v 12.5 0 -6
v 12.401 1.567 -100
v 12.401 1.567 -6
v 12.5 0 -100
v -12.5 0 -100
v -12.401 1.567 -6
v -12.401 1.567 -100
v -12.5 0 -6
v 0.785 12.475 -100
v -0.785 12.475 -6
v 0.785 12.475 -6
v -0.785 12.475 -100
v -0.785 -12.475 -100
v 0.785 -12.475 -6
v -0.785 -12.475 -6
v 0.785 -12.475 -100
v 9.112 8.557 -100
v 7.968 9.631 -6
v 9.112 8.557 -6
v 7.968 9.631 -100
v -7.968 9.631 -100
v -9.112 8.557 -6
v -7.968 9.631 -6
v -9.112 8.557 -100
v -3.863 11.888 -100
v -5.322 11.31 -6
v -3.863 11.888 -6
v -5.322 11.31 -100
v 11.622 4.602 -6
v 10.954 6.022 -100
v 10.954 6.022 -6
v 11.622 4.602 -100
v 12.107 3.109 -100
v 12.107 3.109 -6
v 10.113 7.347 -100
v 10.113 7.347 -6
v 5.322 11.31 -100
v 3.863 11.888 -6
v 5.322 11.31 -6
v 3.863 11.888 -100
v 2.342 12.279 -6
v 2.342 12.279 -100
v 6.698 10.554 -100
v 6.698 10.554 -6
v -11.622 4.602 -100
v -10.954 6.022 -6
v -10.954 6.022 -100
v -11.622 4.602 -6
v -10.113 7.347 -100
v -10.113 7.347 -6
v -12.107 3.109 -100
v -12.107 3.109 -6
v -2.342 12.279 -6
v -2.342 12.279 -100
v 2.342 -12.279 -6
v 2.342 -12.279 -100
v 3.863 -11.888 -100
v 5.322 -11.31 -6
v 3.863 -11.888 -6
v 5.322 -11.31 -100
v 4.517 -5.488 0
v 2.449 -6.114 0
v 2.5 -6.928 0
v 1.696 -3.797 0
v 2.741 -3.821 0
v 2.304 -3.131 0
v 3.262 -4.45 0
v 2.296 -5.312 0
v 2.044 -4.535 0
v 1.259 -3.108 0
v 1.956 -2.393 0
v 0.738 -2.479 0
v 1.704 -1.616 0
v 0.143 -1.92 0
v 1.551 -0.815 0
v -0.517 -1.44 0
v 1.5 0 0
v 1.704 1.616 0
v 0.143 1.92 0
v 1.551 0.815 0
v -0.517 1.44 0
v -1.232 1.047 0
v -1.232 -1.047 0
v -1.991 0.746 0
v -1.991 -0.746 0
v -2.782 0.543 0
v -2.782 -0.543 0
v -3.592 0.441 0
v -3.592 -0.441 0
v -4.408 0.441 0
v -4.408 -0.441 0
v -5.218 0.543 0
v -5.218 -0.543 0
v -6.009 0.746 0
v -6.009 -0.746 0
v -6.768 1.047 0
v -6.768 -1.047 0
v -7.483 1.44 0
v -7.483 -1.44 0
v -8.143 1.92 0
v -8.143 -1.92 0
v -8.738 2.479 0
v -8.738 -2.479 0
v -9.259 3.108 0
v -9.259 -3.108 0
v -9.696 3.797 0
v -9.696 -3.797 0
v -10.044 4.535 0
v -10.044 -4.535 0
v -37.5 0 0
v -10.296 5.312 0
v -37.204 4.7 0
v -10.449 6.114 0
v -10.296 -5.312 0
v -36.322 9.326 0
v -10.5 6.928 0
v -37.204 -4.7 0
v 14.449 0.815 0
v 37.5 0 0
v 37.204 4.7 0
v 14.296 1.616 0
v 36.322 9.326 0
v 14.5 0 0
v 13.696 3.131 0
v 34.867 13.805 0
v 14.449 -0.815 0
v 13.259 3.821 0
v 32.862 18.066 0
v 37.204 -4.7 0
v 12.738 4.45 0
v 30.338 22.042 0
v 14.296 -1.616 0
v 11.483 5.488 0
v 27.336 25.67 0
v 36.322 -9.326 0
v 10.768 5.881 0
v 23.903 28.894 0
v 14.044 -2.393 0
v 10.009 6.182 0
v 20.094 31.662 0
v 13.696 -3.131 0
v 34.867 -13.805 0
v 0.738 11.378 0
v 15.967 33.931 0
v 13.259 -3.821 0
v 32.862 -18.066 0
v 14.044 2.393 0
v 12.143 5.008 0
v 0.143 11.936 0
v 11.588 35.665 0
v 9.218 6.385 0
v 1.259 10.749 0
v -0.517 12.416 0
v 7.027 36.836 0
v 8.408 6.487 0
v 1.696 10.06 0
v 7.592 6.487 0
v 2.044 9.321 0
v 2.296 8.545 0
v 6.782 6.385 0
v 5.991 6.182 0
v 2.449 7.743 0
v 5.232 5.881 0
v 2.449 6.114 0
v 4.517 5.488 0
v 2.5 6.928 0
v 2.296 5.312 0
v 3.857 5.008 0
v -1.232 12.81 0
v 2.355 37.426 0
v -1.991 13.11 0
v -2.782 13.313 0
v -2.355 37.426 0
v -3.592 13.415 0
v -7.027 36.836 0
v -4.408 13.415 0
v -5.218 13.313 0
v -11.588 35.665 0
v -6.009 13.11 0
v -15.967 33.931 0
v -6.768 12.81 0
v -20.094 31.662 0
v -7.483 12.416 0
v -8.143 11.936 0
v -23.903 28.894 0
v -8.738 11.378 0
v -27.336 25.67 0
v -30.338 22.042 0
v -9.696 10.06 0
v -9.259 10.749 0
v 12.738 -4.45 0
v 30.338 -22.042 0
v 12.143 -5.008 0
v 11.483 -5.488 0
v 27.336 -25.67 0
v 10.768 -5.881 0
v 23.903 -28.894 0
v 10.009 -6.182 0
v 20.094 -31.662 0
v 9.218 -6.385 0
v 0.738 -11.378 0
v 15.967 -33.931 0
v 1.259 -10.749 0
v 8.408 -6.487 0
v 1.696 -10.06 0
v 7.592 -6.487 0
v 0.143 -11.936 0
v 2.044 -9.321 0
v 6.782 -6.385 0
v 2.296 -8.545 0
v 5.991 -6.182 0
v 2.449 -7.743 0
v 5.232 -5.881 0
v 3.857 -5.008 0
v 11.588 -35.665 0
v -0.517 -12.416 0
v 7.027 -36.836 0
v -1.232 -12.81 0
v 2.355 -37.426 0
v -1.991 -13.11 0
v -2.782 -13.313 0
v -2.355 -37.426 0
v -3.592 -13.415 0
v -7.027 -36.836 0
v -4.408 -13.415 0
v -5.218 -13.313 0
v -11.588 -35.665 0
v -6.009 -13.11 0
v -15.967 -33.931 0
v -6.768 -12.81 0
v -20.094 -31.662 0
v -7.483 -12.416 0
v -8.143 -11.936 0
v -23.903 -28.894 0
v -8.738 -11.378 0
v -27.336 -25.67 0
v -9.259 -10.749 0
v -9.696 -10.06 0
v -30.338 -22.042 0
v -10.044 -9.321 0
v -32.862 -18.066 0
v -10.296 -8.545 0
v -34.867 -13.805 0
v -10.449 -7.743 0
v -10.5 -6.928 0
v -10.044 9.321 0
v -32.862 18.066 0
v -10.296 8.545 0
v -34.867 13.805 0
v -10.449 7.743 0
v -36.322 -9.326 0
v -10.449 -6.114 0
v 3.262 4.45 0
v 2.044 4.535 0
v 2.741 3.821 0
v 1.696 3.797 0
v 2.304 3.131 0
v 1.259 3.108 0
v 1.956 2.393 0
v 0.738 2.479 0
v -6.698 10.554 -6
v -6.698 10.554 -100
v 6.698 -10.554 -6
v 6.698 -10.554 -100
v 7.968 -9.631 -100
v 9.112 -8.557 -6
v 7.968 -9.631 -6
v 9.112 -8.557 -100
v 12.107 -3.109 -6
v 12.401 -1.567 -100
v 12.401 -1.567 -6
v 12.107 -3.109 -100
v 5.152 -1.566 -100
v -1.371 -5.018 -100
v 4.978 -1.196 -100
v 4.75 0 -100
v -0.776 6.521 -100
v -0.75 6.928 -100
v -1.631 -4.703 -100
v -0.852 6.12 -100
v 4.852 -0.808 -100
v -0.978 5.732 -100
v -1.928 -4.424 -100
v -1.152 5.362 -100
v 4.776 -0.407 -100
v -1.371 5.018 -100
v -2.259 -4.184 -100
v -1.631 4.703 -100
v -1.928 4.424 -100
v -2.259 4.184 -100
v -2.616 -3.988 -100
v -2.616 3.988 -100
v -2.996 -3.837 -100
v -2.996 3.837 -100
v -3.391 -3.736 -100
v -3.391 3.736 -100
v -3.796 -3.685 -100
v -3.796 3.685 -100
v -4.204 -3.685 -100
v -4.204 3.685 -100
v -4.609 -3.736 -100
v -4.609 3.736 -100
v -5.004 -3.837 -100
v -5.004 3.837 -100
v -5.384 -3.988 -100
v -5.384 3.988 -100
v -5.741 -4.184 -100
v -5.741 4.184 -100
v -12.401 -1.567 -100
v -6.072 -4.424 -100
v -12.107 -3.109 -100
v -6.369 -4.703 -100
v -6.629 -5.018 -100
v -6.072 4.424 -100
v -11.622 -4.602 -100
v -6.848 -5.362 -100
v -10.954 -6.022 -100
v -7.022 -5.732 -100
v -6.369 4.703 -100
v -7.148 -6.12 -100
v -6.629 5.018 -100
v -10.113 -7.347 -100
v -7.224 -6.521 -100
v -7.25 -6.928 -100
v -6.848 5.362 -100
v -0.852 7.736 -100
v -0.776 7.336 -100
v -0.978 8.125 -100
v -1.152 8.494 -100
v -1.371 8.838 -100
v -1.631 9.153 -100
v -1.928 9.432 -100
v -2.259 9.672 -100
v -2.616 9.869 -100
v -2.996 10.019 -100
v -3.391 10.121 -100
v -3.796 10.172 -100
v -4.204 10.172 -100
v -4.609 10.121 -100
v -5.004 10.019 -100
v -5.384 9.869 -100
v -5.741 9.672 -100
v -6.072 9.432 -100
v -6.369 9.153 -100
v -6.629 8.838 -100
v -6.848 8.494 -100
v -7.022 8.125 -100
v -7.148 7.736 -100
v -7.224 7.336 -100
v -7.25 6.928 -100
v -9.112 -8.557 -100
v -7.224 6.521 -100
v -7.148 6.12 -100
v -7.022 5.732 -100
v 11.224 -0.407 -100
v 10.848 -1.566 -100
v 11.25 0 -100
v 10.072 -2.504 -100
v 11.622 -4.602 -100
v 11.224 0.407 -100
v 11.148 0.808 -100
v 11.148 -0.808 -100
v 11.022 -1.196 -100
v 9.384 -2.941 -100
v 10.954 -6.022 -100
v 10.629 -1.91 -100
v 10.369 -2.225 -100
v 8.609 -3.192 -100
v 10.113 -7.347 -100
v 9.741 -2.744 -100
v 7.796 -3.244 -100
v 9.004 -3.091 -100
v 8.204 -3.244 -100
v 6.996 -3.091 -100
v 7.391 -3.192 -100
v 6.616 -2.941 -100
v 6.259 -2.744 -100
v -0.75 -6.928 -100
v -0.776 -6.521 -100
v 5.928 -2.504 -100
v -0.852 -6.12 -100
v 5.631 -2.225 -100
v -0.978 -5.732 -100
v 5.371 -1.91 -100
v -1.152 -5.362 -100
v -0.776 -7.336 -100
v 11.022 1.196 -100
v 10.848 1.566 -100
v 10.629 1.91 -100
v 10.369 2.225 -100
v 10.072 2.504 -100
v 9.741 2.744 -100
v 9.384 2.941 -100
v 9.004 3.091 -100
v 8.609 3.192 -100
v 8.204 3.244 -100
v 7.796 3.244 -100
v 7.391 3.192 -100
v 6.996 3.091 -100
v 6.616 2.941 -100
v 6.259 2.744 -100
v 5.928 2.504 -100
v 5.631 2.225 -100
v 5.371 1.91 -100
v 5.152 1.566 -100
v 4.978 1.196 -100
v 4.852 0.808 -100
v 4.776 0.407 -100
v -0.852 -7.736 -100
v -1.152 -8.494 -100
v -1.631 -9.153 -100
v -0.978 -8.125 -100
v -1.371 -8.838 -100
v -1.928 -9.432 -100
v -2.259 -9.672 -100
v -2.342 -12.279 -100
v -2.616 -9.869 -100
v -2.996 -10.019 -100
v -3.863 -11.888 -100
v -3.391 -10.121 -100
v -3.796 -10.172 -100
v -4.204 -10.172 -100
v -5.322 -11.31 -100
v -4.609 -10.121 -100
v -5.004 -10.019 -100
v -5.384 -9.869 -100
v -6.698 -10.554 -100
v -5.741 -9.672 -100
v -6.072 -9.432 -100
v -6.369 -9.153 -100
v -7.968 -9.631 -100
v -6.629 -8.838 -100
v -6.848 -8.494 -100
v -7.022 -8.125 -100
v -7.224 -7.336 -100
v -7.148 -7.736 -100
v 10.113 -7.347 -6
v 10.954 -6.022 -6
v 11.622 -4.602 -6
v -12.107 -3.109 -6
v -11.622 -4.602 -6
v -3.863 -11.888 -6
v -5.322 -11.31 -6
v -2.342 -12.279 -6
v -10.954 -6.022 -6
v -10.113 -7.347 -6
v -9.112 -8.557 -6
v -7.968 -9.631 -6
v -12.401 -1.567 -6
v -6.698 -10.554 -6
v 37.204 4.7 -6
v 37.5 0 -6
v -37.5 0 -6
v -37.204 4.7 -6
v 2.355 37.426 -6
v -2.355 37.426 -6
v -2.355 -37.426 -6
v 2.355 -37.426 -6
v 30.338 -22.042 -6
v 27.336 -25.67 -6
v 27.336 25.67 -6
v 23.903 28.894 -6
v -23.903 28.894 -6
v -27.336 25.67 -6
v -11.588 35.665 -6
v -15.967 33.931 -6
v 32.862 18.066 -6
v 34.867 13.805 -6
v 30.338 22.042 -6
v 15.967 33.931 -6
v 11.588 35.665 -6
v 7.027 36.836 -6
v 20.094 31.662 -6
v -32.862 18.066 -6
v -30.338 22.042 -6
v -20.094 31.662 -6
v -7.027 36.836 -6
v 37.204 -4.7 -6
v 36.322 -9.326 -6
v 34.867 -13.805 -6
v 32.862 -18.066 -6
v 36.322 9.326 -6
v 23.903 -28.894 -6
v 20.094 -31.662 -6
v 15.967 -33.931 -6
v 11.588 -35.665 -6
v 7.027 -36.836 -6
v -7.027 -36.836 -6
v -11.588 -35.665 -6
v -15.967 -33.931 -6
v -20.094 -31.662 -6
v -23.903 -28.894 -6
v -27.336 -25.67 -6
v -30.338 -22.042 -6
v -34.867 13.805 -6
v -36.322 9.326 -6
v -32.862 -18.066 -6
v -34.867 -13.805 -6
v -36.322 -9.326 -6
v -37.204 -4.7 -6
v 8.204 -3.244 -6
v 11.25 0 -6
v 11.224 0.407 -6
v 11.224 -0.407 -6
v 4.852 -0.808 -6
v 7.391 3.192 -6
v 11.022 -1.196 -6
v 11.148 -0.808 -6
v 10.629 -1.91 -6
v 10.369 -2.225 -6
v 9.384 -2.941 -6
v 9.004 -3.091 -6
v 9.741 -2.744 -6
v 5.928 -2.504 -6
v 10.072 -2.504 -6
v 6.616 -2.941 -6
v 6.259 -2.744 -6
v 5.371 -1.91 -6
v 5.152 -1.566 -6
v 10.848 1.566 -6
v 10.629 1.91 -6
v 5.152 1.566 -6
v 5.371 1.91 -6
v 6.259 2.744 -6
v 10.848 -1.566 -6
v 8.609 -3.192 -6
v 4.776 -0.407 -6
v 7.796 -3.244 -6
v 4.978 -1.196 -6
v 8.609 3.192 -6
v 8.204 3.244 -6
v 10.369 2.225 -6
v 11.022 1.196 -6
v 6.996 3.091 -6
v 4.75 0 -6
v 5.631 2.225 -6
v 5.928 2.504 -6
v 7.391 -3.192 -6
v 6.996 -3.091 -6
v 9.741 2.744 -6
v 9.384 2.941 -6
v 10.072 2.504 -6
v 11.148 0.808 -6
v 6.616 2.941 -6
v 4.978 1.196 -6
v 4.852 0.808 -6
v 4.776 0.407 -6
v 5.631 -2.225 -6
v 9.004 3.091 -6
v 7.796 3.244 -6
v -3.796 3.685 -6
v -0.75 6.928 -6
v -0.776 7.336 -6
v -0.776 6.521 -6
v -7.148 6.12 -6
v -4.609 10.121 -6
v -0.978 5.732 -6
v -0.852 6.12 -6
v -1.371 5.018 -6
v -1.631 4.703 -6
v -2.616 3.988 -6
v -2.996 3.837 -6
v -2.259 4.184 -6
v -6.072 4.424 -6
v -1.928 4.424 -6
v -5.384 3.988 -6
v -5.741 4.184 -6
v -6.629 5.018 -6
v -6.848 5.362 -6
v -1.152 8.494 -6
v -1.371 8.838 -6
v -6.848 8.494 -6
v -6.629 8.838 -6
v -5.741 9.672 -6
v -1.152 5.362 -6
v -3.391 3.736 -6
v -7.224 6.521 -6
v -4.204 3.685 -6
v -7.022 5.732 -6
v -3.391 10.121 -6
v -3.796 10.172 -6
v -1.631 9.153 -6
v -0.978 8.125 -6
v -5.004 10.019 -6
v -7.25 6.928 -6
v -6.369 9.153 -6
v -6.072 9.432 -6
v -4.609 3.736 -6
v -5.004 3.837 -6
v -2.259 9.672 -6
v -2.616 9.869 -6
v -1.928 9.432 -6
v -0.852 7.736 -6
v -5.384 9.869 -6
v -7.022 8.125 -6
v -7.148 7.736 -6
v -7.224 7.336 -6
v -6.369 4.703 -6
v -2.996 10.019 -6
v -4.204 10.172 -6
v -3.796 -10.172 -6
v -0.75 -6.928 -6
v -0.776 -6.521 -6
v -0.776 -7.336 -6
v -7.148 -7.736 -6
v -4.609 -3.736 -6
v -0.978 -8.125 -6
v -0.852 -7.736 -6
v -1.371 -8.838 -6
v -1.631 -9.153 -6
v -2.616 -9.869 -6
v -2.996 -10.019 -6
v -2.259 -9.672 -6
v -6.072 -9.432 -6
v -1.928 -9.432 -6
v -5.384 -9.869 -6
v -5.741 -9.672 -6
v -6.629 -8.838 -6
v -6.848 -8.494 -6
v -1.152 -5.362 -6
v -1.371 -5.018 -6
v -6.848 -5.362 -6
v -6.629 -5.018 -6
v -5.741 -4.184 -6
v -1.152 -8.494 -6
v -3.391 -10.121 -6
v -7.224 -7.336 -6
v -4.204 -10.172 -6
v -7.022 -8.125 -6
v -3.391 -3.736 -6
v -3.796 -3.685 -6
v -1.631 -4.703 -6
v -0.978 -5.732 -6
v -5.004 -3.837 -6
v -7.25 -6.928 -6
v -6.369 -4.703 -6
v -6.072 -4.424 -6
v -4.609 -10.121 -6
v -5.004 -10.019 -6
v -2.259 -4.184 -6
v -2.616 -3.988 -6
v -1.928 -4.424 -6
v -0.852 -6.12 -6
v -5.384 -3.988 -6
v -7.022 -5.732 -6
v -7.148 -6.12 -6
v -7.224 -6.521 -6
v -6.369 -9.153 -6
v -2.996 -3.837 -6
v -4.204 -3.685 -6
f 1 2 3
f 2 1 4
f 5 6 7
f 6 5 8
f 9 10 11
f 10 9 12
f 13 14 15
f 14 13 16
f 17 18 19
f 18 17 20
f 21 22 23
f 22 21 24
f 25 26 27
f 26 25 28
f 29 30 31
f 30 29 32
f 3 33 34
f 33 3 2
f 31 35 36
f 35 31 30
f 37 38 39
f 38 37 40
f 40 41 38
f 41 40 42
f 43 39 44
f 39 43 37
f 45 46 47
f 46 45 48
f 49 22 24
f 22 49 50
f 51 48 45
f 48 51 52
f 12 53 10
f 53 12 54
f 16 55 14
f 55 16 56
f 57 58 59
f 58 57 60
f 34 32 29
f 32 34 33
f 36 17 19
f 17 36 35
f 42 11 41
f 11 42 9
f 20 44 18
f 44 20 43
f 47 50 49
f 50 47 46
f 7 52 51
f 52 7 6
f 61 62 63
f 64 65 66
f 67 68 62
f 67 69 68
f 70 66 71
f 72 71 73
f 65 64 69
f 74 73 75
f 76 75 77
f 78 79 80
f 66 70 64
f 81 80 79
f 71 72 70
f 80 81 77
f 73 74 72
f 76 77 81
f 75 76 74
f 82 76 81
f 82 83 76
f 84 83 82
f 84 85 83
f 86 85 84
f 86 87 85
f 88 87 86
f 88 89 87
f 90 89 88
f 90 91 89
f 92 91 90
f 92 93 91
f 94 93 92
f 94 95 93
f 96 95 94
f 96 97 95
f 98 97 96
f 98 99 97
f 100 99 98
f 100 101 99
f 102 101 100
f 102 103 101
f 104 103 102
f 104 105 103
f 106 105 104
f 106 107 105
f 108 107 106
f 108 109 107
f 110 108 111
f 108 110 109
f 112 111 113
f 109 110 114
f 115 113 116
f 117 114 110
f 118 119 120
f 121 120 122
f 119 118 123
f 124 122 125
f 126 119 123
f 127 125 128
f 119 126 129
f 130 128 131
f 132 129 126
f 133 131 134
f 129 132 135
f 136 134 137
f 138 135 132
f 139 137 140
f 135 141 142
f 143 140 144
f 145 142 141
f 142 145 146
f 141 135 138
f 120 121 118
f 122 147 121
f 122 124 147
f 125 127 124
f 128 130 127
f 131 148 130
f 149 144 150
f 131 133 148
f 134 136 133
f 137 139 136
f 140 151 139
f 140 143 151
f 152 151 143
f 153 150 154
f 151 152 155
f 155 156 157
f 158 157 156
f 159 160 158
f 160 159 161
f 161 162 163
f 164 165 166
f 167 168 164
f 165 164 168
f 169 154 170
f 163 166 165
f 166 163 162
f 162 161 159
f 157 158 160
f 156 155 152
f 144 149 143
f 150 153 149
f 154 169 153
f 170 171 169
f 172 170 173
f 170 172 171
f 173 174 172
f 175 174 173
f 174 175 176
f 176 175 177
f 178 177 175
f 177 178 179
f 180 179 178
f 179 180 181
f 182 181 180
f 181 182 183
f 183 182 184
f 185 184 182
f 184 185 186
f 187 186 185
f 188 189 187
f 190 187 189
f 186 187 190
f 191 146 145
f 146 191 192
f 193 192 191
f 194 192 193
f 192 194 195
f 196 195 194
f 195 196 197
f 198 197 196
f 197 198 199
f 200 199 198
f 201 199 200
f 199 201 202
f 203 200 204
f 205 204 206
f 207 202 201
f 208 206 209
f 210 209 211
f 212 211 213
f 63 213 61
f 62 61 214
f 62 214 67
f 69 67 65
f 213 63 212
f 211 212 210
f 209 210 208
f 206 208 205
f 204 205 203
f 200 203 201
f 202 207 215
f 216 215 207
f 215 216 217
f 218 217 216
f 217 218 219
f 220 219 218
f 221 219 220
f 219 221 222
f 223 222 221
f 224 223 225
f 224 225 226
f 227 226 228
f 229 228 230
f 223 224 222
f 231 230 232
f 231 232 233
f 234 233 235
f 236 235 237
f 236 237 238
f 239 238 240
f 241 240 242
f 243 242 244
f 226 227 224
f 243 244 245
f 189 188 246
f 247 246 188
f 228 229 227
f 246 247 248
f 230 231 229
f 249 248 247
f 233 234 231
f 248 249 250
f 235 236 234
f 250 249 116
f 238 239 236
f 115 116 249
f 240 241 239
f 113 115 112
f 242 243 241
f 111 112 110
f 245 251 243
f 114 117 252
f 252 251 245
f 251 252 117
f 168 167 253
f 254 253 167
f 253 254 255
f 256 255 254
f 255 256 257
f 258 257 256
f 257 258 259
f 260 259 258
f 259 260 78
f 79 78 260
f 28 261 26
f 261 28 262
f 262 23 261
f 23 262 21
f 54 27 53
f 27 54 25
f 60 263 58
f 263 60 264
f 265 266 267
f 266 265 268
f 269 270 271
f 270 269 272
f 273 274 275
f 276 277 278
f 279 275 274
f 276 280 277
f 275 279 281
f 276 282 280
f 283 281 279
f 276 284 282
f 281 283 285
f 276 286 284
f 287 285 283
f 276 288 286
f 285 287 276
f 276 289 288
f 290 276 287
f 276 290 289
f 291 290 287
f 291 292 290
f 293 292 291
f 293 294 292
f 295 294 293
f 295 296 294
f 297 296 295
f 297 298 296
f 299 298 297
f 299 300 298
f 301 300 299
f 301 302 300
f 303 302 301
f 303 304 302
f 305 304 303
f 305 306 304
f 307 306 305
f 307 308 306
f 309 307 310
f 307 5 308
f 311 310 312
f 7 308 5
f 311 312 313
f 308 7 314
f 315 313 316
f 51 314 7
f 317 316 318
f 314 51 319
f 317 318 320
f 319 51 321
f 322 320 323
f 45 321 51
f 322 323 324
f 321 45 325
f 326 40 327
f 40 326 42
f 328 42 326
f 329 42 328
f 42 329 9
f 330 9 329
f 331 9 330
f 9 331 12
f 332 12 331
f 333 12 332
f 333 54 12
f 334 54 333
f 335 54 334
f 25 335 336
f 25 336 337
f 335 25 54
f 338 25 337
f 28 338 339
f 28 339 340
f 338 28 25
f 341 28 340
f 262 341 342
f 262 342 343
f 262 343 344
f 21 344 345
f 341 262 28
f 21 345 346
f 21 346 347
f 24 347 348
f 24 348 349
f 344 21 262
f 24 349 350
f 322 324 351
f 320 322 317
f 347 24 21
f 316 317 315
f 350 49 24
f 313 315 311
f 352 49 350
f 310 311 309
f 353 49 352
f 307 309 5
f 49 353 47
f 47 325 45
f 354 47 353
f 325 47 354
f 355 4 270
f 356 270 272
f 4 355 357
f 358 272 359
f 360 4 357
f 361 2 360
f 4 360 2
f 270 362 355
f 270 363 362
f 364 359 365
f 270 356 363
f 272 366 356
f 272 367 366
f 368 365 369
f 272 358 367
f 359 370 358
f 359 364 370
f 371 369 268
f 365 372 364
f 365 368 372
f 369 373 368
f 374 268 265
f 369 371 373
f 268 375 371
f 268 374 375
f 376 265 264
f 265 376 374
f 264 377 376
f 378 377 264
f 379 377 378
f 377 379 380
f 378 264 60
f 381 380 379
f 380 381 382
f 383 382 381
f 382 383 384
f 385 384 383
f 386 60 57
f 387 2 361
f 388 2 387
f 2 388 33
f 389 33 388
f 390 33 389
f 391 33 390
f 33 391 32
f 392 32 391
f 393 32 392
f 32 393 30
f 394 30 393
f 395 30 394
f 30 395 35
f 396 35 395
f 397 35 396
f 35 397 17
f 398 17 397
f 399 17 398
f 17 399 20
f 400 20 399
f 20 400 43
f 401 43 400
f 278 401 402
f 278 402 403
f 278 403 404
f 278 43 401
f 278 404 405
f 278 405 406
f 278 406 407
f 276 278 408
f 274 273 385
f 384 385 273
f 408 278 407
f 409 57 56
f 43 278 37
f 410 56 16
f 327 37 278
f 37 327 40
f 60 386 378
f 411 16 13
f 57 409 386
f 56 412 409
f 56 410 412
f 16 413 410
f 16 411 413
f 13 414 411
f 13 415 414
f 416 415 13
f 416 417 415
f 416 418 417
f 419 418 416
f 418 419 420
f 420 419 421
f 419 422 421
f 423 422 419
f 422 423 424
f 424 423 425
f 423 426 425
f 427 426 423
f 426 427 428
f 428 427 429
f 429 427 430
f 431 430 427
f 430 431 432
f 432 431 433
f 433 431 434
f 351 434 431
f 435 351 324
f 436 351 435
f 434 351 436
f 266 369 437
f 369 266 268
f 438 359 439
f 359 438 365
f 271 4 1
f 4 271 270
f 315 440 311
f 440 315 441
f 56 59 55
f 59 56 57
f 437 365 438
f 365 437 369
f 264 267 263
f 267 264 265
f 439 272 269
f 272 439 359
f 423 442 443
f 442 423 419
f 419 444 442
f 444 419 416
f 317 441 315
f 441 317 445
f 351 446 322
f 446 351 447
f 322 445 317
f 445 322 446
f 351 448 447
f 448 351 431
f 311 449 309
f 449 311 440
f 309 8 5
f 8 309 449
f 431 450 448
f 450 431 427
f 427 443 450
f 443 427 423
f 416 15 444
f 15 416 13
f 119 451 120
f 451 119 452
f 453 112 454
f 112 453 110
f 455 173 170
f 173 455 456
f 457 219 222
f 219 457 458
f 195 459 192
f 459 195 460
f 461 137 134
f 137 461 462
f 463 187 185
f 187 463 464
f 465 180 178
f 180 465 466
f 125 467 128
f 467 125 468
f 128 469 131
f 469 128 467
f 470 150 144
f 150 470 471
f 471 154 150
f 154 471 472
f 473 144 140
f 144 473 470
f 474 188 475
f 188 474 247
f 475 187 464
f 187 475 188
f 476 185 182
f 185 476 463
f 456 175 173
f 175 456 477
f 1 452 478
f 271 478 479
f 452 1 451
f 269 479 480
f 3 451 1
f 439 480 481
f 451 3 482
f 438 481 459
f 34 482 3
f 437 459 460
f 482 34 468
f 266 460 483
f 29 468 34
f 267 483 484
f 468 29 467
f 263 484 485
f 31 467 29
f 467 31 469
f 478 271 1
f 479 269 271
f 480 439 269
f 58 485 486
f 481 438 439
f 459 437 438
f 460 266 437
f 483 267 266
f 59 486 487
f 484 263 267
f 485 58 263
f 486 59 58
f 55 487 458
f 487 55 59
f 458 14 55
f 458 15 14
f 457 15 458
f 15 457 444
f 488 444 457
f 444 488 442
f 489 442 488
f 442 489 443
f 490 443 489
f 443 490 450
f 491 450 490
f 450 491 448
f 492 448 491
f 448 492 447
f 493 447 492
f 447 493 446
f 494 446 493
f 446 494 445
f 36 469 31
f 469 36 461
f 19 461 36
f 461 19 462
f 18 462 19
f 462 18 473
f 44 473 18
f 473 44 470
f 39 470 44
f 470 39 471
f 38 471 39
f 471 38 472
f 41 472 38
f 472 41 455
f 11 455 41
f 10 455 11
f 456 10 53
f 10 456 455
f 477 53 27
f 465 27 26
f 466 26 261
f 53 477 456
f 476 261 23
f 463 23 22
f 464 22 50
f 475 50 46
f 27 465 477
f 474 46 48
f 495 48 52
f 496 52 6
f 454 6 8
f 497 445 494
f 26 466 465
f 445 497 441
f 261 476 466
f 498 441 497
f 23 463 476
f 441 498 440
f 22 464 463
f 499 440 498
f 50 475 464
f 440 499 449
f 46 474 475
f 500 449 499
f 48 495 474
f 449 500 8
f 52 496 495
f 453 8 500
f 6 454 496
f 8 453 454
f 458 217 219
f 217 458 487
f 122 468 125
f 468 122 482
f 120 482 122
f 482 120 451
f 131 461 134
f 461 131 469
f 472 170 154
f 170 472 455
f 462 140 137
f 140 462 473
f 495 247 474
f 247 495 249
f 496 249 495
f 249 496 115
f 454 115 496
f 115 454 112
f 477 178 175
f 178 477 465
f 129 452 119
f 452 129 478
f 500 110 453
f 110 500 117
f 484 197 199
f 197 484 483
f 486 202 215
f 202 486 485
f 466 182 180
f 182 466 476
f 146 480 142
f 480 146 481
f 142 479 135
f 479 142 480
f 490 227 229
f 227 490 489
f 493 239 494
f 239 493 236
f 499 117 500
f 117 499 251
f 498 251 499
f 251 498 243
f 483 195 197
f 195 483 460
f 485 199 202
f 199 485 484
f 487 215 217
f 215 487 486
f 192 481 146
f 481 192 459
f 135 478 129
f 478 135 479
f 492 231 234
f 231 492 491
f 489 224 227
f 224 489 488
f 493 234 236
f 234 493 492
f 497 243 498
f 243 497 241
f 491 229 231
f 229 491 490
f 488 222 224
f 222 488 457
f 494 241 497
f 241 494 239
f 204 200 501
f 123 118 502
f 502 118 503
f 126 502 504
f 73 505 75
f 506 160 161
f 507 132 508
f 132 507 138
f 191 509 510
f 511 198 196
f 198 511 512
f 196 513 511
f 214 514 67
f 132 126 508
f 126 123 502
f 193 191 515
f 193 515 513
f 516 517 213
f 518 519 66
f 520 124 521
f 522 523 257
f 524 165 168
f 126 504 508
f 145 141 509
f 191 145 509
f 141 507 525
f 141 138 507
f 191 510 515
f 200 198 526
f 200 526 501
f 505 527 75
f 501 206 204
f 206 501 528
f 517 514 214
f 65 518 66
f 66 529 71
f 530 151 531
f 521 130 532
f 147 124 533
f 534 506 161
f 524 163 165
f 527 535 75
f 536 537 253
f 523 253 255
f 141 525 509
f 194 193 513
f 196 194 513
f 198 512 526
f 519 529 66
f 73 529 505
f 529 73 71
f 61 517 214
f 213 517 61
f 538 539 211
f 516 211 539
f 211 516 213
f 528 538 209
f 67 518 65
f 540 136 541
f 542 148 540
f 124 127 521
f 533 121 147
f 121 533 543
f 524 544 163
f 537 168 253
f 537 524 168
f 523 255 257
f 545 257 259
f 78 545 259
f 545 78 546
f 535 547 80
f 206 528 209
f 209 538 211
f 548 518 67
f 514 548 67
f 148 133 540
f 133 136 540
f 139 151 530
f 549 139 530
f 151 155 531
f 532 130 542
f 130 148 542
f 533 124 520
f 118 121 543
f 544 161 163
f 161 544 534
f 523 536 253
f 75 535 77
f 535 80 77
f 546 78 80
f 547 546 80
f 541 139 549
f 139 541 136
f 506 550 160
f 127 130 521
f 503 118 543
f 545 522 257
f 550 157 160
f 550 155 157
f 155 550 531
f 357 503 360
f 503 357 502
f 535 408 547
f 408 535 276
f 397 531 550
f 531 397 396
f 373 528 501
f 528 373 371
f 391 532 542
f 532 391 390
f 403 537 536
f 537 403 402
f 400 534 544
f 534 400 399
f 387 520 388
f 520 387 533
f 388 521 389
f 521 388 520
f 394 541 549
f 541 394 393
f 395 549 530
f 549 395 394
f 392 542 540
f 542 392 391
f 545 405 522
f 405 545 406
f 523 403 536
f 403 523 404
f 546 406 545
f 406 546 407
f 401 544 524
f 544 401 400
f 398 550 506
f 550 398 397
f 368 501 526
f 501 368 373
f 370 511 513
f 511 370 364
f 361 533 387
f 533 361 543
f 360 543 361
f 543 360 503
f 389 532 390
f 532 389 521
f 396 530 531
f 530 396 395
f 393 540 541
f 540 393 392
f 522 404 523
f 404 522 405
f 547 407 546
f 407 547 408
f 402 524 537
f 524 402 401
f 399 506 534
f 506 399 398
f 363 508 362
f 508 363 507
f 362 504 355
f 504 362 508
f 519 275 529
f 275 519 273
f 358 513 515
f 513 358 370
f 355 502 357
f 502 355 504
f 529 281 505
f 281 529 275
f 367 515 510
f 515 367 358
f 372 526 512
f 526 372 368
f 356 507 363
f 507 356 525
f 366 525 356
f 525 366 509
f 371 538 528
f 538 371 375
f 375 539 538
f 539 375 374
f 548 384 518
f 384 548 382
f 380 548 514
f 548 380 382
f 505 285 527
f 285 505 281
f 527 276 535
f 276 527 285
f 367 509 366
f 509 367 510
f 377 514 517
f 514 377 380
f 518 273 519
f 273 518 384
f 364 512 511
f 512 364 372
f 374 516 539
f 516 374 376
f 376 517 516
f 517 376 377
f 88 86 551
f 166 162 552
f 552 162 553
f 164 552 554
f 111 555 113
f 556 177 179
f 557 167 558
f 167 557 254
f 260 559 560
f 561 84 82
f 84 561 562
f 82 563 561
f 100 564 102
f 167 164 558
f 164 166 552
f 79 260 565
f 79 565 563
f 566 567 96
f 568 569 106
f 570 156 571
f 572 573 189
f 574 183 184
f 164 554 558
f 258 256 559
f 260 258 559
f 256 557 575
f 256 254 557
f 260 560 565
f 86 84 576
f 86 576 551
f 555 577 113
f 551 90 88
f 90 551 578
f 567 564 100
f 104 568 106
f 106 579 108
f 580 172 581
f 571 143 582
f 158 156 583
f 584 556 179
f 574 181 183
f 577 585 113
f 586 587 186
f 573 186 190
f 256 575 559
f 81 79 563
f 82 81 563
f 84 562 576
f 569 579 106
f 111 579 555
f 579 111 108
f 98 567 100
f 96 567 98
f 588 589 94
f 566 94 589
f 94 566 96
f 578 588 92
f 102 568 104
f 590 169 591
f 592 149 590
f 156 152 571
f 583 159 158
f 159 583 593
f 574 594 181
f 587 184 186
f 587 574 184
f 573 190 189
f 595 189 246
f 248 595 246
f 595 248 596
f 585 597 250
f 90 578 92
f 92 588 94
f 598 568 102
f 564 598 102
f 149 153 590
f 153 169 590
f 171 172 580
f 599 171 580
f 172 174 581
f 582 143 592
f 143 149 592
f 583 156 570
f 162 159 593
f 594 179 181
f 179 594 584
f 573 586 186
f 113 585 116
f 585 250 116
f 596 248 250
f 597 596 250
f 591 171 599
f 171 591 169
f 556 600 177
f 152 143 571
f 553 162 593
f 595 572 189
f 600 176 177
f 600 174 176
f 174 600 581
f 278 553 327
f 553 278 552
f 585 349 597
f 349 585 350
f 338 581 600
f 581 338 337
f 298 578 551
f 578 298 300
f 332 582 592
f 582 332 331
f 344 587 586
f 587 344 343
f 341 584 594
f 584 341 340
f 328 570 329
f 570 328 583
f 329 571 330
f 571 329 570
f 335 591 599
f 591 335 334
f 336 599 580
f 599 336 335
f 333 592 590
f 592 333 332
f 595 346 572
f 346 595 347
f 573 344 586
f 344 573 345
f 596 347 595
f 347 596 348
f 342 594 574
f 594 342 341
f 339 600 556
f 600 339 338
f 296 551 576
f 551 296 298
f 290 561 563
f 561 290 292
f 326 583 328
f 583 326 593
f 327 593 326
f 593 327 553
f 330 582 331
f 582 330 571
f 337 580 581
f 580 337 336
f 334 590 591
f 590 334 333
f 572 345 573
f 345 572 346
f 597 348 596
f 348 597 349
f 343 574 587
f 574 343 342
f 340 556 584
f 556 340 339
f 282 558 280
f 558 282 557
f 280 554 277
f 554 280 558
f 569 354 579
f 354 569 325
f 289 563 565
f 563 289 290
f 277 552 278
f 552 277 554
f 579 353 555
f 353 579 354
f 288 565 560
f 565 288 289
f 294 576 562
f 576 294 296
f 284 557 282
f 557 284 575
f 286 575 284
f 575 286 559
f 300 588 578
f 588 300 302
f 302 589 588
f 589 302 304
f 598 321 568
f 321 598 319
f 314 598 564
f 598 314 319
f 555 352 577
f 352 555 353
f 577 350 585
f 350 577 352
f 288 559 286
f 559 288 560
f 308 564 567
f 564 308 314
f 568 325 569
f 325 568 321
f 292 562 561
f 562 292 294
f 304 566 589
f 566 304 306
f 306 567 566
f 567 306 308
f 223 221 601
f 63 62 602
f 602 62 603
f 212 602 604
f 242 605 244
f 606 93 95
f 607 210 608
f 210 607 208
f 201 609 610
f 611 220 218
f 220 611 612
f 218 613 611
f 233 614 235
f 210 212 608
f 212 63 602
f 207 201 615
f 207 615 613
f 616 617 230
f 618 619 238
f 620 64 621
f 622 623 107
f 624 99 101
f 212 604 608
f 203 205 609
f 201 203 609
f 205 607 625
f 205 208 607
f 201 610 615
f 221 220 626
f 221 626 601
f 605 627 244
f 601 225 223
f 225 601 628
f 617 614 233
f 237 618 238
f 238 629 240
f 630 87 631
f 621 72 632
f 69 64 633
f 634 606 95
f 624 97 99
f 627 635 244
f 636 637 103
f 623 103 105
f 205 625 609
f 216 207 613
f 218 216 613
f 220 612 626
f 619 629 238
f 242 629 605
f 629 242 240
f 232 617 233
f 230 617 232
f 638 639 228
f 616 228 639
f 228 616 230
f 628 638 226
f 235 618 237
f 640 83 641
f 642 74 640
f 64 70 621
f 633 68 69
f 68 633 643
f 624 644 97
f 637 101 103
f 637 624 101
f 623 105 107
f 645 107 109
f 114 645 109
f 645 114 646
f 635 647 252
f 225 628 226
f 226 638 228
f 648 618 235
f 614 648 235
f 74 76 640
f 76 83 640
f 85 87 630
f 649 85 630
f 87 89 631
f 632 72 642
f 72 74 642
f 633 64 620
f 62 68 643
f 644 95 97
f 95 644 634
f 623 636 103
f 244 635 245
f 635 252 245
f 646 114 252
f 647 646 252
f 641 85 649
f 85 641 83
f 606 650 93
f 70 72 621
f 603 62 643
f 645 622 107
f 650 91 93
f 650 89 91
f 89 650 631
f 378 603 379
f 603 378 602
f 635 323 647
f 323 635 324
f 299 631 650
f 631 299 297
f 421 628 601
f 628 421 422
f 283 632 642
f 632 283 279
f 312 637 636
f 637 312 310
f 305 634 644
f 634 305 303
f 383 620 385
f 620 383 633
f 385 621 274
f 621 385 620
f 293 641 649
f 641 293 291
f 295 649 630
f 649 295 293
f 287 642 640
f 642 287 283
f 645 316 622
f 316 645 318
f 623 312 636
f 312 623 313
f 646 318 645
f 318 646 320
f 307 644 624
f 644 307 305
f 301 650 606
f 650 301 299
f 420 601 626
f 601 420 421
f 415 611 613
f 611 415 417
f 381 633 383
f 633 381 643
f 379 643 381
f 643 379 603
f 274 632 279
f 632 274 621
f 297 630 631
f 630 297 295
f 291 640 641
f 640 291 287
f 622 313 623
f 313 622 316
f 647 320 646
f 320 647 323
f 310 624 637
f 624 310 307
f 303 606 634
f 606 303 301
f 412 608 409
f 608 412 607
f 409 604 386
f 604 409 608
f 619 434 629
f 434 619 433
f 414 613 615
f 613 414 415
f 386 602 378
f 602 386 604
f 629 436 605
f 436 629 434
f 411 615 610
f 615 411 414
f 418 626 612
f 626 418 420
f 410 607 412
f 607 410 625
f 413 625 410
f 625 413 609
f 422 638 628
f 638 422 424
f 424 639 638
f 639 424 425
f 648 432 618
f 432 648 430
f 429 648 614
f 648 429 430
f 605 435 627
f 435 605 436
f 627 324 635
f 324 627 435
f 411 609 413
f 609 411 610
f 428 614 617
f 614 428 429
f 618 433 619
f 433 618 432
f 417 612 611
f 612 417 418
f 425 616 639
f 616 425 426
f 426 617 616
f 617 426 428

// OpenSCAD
$fn = 50;


difference() {
	union() {
		translate(v = [0, 0, -100.0000000000]) {
			cylinder(h = 100, r = 12.5000000000);
		}
		translate(v = [0, 0, -6.0000000000]) {
			cylinder(h = 6, r = 37.5000000000);
		}
	}
	union() {
		translate(v = [8.0000000000, 0.0000000000, 0]) {
			rotate(a = [0, 0, 0]) {
				difference() {
					union() {
						#translate(v = [0, 0, -100.0000000000]) {
							cylinder(h = 100, r = 2.2500000000);
						}
						#translate(v = [0, 0, -6]) {
							cylinder(h = 6, r = 12.5000000000, r1 = 3.2500000000, r2 = 6.5000000000);
						}
						#translate(v = [0, 0, -100.0000000000]) {
							cylinder(h = 100, r = 3.2500000000);
						}
						#translate(v = [0, 0, -100.0000000000]) {
							cylinder(h = 100, r = 2.2500000000);
						}
					}
					union();
				}
			}
		}
		translate(v = [-4.0000000000, 6.9282032303, 0]) {
			rotate(a = [0, 0, 0]) {
				difference() {
					union() {
						#translate(v = [0, 0, -100.0000000000]) {
							cylinder(h = 100, r = 2.2500000000);
						}
						#translate(v = [0, 0, -6]) {
							cylinder(h = 6, r = 12.5000000000, r1 = 3.2500000000, r2 = 6.5000000000);
						}
						#translate(v = [0, 0, -100.0000000000]) {
							cylinder(h = 100, r = 3.2500000000);
						}
						#translate(v = [0, 0, -100.0000000000]) {
							cylinder(h = 100, r = 2.2500000000);
						}
					}
					union();
				}
			}
		}
		translate(v = [-4.0000000000, -6.9282032303, 0]) {
			rotate(a = [0, 0, 0]) {
				difference() {
					union() {
						#translate(v = [0, 0, -100.0000000000]) {
							cylinder(h = 100, r = 2.2500000000);
						}
						#translate(v = [0, 0, -6]) {
							cylinder(h = 6, r = 12.5000000000, r1 = 3.2500000000, r2 = 6.5000000000);
						}
						#translate(v = [0, 0, -100.0000000000]) {
							cylinder(h = 100, r = 3.2500000000);
						}
						#translate(v = [0, 0, -100.0000000000]) {
							cylinder(h = 100, r = 2.2500000000);
						}
					}
					union();
				}
			}
		}
	}
}
